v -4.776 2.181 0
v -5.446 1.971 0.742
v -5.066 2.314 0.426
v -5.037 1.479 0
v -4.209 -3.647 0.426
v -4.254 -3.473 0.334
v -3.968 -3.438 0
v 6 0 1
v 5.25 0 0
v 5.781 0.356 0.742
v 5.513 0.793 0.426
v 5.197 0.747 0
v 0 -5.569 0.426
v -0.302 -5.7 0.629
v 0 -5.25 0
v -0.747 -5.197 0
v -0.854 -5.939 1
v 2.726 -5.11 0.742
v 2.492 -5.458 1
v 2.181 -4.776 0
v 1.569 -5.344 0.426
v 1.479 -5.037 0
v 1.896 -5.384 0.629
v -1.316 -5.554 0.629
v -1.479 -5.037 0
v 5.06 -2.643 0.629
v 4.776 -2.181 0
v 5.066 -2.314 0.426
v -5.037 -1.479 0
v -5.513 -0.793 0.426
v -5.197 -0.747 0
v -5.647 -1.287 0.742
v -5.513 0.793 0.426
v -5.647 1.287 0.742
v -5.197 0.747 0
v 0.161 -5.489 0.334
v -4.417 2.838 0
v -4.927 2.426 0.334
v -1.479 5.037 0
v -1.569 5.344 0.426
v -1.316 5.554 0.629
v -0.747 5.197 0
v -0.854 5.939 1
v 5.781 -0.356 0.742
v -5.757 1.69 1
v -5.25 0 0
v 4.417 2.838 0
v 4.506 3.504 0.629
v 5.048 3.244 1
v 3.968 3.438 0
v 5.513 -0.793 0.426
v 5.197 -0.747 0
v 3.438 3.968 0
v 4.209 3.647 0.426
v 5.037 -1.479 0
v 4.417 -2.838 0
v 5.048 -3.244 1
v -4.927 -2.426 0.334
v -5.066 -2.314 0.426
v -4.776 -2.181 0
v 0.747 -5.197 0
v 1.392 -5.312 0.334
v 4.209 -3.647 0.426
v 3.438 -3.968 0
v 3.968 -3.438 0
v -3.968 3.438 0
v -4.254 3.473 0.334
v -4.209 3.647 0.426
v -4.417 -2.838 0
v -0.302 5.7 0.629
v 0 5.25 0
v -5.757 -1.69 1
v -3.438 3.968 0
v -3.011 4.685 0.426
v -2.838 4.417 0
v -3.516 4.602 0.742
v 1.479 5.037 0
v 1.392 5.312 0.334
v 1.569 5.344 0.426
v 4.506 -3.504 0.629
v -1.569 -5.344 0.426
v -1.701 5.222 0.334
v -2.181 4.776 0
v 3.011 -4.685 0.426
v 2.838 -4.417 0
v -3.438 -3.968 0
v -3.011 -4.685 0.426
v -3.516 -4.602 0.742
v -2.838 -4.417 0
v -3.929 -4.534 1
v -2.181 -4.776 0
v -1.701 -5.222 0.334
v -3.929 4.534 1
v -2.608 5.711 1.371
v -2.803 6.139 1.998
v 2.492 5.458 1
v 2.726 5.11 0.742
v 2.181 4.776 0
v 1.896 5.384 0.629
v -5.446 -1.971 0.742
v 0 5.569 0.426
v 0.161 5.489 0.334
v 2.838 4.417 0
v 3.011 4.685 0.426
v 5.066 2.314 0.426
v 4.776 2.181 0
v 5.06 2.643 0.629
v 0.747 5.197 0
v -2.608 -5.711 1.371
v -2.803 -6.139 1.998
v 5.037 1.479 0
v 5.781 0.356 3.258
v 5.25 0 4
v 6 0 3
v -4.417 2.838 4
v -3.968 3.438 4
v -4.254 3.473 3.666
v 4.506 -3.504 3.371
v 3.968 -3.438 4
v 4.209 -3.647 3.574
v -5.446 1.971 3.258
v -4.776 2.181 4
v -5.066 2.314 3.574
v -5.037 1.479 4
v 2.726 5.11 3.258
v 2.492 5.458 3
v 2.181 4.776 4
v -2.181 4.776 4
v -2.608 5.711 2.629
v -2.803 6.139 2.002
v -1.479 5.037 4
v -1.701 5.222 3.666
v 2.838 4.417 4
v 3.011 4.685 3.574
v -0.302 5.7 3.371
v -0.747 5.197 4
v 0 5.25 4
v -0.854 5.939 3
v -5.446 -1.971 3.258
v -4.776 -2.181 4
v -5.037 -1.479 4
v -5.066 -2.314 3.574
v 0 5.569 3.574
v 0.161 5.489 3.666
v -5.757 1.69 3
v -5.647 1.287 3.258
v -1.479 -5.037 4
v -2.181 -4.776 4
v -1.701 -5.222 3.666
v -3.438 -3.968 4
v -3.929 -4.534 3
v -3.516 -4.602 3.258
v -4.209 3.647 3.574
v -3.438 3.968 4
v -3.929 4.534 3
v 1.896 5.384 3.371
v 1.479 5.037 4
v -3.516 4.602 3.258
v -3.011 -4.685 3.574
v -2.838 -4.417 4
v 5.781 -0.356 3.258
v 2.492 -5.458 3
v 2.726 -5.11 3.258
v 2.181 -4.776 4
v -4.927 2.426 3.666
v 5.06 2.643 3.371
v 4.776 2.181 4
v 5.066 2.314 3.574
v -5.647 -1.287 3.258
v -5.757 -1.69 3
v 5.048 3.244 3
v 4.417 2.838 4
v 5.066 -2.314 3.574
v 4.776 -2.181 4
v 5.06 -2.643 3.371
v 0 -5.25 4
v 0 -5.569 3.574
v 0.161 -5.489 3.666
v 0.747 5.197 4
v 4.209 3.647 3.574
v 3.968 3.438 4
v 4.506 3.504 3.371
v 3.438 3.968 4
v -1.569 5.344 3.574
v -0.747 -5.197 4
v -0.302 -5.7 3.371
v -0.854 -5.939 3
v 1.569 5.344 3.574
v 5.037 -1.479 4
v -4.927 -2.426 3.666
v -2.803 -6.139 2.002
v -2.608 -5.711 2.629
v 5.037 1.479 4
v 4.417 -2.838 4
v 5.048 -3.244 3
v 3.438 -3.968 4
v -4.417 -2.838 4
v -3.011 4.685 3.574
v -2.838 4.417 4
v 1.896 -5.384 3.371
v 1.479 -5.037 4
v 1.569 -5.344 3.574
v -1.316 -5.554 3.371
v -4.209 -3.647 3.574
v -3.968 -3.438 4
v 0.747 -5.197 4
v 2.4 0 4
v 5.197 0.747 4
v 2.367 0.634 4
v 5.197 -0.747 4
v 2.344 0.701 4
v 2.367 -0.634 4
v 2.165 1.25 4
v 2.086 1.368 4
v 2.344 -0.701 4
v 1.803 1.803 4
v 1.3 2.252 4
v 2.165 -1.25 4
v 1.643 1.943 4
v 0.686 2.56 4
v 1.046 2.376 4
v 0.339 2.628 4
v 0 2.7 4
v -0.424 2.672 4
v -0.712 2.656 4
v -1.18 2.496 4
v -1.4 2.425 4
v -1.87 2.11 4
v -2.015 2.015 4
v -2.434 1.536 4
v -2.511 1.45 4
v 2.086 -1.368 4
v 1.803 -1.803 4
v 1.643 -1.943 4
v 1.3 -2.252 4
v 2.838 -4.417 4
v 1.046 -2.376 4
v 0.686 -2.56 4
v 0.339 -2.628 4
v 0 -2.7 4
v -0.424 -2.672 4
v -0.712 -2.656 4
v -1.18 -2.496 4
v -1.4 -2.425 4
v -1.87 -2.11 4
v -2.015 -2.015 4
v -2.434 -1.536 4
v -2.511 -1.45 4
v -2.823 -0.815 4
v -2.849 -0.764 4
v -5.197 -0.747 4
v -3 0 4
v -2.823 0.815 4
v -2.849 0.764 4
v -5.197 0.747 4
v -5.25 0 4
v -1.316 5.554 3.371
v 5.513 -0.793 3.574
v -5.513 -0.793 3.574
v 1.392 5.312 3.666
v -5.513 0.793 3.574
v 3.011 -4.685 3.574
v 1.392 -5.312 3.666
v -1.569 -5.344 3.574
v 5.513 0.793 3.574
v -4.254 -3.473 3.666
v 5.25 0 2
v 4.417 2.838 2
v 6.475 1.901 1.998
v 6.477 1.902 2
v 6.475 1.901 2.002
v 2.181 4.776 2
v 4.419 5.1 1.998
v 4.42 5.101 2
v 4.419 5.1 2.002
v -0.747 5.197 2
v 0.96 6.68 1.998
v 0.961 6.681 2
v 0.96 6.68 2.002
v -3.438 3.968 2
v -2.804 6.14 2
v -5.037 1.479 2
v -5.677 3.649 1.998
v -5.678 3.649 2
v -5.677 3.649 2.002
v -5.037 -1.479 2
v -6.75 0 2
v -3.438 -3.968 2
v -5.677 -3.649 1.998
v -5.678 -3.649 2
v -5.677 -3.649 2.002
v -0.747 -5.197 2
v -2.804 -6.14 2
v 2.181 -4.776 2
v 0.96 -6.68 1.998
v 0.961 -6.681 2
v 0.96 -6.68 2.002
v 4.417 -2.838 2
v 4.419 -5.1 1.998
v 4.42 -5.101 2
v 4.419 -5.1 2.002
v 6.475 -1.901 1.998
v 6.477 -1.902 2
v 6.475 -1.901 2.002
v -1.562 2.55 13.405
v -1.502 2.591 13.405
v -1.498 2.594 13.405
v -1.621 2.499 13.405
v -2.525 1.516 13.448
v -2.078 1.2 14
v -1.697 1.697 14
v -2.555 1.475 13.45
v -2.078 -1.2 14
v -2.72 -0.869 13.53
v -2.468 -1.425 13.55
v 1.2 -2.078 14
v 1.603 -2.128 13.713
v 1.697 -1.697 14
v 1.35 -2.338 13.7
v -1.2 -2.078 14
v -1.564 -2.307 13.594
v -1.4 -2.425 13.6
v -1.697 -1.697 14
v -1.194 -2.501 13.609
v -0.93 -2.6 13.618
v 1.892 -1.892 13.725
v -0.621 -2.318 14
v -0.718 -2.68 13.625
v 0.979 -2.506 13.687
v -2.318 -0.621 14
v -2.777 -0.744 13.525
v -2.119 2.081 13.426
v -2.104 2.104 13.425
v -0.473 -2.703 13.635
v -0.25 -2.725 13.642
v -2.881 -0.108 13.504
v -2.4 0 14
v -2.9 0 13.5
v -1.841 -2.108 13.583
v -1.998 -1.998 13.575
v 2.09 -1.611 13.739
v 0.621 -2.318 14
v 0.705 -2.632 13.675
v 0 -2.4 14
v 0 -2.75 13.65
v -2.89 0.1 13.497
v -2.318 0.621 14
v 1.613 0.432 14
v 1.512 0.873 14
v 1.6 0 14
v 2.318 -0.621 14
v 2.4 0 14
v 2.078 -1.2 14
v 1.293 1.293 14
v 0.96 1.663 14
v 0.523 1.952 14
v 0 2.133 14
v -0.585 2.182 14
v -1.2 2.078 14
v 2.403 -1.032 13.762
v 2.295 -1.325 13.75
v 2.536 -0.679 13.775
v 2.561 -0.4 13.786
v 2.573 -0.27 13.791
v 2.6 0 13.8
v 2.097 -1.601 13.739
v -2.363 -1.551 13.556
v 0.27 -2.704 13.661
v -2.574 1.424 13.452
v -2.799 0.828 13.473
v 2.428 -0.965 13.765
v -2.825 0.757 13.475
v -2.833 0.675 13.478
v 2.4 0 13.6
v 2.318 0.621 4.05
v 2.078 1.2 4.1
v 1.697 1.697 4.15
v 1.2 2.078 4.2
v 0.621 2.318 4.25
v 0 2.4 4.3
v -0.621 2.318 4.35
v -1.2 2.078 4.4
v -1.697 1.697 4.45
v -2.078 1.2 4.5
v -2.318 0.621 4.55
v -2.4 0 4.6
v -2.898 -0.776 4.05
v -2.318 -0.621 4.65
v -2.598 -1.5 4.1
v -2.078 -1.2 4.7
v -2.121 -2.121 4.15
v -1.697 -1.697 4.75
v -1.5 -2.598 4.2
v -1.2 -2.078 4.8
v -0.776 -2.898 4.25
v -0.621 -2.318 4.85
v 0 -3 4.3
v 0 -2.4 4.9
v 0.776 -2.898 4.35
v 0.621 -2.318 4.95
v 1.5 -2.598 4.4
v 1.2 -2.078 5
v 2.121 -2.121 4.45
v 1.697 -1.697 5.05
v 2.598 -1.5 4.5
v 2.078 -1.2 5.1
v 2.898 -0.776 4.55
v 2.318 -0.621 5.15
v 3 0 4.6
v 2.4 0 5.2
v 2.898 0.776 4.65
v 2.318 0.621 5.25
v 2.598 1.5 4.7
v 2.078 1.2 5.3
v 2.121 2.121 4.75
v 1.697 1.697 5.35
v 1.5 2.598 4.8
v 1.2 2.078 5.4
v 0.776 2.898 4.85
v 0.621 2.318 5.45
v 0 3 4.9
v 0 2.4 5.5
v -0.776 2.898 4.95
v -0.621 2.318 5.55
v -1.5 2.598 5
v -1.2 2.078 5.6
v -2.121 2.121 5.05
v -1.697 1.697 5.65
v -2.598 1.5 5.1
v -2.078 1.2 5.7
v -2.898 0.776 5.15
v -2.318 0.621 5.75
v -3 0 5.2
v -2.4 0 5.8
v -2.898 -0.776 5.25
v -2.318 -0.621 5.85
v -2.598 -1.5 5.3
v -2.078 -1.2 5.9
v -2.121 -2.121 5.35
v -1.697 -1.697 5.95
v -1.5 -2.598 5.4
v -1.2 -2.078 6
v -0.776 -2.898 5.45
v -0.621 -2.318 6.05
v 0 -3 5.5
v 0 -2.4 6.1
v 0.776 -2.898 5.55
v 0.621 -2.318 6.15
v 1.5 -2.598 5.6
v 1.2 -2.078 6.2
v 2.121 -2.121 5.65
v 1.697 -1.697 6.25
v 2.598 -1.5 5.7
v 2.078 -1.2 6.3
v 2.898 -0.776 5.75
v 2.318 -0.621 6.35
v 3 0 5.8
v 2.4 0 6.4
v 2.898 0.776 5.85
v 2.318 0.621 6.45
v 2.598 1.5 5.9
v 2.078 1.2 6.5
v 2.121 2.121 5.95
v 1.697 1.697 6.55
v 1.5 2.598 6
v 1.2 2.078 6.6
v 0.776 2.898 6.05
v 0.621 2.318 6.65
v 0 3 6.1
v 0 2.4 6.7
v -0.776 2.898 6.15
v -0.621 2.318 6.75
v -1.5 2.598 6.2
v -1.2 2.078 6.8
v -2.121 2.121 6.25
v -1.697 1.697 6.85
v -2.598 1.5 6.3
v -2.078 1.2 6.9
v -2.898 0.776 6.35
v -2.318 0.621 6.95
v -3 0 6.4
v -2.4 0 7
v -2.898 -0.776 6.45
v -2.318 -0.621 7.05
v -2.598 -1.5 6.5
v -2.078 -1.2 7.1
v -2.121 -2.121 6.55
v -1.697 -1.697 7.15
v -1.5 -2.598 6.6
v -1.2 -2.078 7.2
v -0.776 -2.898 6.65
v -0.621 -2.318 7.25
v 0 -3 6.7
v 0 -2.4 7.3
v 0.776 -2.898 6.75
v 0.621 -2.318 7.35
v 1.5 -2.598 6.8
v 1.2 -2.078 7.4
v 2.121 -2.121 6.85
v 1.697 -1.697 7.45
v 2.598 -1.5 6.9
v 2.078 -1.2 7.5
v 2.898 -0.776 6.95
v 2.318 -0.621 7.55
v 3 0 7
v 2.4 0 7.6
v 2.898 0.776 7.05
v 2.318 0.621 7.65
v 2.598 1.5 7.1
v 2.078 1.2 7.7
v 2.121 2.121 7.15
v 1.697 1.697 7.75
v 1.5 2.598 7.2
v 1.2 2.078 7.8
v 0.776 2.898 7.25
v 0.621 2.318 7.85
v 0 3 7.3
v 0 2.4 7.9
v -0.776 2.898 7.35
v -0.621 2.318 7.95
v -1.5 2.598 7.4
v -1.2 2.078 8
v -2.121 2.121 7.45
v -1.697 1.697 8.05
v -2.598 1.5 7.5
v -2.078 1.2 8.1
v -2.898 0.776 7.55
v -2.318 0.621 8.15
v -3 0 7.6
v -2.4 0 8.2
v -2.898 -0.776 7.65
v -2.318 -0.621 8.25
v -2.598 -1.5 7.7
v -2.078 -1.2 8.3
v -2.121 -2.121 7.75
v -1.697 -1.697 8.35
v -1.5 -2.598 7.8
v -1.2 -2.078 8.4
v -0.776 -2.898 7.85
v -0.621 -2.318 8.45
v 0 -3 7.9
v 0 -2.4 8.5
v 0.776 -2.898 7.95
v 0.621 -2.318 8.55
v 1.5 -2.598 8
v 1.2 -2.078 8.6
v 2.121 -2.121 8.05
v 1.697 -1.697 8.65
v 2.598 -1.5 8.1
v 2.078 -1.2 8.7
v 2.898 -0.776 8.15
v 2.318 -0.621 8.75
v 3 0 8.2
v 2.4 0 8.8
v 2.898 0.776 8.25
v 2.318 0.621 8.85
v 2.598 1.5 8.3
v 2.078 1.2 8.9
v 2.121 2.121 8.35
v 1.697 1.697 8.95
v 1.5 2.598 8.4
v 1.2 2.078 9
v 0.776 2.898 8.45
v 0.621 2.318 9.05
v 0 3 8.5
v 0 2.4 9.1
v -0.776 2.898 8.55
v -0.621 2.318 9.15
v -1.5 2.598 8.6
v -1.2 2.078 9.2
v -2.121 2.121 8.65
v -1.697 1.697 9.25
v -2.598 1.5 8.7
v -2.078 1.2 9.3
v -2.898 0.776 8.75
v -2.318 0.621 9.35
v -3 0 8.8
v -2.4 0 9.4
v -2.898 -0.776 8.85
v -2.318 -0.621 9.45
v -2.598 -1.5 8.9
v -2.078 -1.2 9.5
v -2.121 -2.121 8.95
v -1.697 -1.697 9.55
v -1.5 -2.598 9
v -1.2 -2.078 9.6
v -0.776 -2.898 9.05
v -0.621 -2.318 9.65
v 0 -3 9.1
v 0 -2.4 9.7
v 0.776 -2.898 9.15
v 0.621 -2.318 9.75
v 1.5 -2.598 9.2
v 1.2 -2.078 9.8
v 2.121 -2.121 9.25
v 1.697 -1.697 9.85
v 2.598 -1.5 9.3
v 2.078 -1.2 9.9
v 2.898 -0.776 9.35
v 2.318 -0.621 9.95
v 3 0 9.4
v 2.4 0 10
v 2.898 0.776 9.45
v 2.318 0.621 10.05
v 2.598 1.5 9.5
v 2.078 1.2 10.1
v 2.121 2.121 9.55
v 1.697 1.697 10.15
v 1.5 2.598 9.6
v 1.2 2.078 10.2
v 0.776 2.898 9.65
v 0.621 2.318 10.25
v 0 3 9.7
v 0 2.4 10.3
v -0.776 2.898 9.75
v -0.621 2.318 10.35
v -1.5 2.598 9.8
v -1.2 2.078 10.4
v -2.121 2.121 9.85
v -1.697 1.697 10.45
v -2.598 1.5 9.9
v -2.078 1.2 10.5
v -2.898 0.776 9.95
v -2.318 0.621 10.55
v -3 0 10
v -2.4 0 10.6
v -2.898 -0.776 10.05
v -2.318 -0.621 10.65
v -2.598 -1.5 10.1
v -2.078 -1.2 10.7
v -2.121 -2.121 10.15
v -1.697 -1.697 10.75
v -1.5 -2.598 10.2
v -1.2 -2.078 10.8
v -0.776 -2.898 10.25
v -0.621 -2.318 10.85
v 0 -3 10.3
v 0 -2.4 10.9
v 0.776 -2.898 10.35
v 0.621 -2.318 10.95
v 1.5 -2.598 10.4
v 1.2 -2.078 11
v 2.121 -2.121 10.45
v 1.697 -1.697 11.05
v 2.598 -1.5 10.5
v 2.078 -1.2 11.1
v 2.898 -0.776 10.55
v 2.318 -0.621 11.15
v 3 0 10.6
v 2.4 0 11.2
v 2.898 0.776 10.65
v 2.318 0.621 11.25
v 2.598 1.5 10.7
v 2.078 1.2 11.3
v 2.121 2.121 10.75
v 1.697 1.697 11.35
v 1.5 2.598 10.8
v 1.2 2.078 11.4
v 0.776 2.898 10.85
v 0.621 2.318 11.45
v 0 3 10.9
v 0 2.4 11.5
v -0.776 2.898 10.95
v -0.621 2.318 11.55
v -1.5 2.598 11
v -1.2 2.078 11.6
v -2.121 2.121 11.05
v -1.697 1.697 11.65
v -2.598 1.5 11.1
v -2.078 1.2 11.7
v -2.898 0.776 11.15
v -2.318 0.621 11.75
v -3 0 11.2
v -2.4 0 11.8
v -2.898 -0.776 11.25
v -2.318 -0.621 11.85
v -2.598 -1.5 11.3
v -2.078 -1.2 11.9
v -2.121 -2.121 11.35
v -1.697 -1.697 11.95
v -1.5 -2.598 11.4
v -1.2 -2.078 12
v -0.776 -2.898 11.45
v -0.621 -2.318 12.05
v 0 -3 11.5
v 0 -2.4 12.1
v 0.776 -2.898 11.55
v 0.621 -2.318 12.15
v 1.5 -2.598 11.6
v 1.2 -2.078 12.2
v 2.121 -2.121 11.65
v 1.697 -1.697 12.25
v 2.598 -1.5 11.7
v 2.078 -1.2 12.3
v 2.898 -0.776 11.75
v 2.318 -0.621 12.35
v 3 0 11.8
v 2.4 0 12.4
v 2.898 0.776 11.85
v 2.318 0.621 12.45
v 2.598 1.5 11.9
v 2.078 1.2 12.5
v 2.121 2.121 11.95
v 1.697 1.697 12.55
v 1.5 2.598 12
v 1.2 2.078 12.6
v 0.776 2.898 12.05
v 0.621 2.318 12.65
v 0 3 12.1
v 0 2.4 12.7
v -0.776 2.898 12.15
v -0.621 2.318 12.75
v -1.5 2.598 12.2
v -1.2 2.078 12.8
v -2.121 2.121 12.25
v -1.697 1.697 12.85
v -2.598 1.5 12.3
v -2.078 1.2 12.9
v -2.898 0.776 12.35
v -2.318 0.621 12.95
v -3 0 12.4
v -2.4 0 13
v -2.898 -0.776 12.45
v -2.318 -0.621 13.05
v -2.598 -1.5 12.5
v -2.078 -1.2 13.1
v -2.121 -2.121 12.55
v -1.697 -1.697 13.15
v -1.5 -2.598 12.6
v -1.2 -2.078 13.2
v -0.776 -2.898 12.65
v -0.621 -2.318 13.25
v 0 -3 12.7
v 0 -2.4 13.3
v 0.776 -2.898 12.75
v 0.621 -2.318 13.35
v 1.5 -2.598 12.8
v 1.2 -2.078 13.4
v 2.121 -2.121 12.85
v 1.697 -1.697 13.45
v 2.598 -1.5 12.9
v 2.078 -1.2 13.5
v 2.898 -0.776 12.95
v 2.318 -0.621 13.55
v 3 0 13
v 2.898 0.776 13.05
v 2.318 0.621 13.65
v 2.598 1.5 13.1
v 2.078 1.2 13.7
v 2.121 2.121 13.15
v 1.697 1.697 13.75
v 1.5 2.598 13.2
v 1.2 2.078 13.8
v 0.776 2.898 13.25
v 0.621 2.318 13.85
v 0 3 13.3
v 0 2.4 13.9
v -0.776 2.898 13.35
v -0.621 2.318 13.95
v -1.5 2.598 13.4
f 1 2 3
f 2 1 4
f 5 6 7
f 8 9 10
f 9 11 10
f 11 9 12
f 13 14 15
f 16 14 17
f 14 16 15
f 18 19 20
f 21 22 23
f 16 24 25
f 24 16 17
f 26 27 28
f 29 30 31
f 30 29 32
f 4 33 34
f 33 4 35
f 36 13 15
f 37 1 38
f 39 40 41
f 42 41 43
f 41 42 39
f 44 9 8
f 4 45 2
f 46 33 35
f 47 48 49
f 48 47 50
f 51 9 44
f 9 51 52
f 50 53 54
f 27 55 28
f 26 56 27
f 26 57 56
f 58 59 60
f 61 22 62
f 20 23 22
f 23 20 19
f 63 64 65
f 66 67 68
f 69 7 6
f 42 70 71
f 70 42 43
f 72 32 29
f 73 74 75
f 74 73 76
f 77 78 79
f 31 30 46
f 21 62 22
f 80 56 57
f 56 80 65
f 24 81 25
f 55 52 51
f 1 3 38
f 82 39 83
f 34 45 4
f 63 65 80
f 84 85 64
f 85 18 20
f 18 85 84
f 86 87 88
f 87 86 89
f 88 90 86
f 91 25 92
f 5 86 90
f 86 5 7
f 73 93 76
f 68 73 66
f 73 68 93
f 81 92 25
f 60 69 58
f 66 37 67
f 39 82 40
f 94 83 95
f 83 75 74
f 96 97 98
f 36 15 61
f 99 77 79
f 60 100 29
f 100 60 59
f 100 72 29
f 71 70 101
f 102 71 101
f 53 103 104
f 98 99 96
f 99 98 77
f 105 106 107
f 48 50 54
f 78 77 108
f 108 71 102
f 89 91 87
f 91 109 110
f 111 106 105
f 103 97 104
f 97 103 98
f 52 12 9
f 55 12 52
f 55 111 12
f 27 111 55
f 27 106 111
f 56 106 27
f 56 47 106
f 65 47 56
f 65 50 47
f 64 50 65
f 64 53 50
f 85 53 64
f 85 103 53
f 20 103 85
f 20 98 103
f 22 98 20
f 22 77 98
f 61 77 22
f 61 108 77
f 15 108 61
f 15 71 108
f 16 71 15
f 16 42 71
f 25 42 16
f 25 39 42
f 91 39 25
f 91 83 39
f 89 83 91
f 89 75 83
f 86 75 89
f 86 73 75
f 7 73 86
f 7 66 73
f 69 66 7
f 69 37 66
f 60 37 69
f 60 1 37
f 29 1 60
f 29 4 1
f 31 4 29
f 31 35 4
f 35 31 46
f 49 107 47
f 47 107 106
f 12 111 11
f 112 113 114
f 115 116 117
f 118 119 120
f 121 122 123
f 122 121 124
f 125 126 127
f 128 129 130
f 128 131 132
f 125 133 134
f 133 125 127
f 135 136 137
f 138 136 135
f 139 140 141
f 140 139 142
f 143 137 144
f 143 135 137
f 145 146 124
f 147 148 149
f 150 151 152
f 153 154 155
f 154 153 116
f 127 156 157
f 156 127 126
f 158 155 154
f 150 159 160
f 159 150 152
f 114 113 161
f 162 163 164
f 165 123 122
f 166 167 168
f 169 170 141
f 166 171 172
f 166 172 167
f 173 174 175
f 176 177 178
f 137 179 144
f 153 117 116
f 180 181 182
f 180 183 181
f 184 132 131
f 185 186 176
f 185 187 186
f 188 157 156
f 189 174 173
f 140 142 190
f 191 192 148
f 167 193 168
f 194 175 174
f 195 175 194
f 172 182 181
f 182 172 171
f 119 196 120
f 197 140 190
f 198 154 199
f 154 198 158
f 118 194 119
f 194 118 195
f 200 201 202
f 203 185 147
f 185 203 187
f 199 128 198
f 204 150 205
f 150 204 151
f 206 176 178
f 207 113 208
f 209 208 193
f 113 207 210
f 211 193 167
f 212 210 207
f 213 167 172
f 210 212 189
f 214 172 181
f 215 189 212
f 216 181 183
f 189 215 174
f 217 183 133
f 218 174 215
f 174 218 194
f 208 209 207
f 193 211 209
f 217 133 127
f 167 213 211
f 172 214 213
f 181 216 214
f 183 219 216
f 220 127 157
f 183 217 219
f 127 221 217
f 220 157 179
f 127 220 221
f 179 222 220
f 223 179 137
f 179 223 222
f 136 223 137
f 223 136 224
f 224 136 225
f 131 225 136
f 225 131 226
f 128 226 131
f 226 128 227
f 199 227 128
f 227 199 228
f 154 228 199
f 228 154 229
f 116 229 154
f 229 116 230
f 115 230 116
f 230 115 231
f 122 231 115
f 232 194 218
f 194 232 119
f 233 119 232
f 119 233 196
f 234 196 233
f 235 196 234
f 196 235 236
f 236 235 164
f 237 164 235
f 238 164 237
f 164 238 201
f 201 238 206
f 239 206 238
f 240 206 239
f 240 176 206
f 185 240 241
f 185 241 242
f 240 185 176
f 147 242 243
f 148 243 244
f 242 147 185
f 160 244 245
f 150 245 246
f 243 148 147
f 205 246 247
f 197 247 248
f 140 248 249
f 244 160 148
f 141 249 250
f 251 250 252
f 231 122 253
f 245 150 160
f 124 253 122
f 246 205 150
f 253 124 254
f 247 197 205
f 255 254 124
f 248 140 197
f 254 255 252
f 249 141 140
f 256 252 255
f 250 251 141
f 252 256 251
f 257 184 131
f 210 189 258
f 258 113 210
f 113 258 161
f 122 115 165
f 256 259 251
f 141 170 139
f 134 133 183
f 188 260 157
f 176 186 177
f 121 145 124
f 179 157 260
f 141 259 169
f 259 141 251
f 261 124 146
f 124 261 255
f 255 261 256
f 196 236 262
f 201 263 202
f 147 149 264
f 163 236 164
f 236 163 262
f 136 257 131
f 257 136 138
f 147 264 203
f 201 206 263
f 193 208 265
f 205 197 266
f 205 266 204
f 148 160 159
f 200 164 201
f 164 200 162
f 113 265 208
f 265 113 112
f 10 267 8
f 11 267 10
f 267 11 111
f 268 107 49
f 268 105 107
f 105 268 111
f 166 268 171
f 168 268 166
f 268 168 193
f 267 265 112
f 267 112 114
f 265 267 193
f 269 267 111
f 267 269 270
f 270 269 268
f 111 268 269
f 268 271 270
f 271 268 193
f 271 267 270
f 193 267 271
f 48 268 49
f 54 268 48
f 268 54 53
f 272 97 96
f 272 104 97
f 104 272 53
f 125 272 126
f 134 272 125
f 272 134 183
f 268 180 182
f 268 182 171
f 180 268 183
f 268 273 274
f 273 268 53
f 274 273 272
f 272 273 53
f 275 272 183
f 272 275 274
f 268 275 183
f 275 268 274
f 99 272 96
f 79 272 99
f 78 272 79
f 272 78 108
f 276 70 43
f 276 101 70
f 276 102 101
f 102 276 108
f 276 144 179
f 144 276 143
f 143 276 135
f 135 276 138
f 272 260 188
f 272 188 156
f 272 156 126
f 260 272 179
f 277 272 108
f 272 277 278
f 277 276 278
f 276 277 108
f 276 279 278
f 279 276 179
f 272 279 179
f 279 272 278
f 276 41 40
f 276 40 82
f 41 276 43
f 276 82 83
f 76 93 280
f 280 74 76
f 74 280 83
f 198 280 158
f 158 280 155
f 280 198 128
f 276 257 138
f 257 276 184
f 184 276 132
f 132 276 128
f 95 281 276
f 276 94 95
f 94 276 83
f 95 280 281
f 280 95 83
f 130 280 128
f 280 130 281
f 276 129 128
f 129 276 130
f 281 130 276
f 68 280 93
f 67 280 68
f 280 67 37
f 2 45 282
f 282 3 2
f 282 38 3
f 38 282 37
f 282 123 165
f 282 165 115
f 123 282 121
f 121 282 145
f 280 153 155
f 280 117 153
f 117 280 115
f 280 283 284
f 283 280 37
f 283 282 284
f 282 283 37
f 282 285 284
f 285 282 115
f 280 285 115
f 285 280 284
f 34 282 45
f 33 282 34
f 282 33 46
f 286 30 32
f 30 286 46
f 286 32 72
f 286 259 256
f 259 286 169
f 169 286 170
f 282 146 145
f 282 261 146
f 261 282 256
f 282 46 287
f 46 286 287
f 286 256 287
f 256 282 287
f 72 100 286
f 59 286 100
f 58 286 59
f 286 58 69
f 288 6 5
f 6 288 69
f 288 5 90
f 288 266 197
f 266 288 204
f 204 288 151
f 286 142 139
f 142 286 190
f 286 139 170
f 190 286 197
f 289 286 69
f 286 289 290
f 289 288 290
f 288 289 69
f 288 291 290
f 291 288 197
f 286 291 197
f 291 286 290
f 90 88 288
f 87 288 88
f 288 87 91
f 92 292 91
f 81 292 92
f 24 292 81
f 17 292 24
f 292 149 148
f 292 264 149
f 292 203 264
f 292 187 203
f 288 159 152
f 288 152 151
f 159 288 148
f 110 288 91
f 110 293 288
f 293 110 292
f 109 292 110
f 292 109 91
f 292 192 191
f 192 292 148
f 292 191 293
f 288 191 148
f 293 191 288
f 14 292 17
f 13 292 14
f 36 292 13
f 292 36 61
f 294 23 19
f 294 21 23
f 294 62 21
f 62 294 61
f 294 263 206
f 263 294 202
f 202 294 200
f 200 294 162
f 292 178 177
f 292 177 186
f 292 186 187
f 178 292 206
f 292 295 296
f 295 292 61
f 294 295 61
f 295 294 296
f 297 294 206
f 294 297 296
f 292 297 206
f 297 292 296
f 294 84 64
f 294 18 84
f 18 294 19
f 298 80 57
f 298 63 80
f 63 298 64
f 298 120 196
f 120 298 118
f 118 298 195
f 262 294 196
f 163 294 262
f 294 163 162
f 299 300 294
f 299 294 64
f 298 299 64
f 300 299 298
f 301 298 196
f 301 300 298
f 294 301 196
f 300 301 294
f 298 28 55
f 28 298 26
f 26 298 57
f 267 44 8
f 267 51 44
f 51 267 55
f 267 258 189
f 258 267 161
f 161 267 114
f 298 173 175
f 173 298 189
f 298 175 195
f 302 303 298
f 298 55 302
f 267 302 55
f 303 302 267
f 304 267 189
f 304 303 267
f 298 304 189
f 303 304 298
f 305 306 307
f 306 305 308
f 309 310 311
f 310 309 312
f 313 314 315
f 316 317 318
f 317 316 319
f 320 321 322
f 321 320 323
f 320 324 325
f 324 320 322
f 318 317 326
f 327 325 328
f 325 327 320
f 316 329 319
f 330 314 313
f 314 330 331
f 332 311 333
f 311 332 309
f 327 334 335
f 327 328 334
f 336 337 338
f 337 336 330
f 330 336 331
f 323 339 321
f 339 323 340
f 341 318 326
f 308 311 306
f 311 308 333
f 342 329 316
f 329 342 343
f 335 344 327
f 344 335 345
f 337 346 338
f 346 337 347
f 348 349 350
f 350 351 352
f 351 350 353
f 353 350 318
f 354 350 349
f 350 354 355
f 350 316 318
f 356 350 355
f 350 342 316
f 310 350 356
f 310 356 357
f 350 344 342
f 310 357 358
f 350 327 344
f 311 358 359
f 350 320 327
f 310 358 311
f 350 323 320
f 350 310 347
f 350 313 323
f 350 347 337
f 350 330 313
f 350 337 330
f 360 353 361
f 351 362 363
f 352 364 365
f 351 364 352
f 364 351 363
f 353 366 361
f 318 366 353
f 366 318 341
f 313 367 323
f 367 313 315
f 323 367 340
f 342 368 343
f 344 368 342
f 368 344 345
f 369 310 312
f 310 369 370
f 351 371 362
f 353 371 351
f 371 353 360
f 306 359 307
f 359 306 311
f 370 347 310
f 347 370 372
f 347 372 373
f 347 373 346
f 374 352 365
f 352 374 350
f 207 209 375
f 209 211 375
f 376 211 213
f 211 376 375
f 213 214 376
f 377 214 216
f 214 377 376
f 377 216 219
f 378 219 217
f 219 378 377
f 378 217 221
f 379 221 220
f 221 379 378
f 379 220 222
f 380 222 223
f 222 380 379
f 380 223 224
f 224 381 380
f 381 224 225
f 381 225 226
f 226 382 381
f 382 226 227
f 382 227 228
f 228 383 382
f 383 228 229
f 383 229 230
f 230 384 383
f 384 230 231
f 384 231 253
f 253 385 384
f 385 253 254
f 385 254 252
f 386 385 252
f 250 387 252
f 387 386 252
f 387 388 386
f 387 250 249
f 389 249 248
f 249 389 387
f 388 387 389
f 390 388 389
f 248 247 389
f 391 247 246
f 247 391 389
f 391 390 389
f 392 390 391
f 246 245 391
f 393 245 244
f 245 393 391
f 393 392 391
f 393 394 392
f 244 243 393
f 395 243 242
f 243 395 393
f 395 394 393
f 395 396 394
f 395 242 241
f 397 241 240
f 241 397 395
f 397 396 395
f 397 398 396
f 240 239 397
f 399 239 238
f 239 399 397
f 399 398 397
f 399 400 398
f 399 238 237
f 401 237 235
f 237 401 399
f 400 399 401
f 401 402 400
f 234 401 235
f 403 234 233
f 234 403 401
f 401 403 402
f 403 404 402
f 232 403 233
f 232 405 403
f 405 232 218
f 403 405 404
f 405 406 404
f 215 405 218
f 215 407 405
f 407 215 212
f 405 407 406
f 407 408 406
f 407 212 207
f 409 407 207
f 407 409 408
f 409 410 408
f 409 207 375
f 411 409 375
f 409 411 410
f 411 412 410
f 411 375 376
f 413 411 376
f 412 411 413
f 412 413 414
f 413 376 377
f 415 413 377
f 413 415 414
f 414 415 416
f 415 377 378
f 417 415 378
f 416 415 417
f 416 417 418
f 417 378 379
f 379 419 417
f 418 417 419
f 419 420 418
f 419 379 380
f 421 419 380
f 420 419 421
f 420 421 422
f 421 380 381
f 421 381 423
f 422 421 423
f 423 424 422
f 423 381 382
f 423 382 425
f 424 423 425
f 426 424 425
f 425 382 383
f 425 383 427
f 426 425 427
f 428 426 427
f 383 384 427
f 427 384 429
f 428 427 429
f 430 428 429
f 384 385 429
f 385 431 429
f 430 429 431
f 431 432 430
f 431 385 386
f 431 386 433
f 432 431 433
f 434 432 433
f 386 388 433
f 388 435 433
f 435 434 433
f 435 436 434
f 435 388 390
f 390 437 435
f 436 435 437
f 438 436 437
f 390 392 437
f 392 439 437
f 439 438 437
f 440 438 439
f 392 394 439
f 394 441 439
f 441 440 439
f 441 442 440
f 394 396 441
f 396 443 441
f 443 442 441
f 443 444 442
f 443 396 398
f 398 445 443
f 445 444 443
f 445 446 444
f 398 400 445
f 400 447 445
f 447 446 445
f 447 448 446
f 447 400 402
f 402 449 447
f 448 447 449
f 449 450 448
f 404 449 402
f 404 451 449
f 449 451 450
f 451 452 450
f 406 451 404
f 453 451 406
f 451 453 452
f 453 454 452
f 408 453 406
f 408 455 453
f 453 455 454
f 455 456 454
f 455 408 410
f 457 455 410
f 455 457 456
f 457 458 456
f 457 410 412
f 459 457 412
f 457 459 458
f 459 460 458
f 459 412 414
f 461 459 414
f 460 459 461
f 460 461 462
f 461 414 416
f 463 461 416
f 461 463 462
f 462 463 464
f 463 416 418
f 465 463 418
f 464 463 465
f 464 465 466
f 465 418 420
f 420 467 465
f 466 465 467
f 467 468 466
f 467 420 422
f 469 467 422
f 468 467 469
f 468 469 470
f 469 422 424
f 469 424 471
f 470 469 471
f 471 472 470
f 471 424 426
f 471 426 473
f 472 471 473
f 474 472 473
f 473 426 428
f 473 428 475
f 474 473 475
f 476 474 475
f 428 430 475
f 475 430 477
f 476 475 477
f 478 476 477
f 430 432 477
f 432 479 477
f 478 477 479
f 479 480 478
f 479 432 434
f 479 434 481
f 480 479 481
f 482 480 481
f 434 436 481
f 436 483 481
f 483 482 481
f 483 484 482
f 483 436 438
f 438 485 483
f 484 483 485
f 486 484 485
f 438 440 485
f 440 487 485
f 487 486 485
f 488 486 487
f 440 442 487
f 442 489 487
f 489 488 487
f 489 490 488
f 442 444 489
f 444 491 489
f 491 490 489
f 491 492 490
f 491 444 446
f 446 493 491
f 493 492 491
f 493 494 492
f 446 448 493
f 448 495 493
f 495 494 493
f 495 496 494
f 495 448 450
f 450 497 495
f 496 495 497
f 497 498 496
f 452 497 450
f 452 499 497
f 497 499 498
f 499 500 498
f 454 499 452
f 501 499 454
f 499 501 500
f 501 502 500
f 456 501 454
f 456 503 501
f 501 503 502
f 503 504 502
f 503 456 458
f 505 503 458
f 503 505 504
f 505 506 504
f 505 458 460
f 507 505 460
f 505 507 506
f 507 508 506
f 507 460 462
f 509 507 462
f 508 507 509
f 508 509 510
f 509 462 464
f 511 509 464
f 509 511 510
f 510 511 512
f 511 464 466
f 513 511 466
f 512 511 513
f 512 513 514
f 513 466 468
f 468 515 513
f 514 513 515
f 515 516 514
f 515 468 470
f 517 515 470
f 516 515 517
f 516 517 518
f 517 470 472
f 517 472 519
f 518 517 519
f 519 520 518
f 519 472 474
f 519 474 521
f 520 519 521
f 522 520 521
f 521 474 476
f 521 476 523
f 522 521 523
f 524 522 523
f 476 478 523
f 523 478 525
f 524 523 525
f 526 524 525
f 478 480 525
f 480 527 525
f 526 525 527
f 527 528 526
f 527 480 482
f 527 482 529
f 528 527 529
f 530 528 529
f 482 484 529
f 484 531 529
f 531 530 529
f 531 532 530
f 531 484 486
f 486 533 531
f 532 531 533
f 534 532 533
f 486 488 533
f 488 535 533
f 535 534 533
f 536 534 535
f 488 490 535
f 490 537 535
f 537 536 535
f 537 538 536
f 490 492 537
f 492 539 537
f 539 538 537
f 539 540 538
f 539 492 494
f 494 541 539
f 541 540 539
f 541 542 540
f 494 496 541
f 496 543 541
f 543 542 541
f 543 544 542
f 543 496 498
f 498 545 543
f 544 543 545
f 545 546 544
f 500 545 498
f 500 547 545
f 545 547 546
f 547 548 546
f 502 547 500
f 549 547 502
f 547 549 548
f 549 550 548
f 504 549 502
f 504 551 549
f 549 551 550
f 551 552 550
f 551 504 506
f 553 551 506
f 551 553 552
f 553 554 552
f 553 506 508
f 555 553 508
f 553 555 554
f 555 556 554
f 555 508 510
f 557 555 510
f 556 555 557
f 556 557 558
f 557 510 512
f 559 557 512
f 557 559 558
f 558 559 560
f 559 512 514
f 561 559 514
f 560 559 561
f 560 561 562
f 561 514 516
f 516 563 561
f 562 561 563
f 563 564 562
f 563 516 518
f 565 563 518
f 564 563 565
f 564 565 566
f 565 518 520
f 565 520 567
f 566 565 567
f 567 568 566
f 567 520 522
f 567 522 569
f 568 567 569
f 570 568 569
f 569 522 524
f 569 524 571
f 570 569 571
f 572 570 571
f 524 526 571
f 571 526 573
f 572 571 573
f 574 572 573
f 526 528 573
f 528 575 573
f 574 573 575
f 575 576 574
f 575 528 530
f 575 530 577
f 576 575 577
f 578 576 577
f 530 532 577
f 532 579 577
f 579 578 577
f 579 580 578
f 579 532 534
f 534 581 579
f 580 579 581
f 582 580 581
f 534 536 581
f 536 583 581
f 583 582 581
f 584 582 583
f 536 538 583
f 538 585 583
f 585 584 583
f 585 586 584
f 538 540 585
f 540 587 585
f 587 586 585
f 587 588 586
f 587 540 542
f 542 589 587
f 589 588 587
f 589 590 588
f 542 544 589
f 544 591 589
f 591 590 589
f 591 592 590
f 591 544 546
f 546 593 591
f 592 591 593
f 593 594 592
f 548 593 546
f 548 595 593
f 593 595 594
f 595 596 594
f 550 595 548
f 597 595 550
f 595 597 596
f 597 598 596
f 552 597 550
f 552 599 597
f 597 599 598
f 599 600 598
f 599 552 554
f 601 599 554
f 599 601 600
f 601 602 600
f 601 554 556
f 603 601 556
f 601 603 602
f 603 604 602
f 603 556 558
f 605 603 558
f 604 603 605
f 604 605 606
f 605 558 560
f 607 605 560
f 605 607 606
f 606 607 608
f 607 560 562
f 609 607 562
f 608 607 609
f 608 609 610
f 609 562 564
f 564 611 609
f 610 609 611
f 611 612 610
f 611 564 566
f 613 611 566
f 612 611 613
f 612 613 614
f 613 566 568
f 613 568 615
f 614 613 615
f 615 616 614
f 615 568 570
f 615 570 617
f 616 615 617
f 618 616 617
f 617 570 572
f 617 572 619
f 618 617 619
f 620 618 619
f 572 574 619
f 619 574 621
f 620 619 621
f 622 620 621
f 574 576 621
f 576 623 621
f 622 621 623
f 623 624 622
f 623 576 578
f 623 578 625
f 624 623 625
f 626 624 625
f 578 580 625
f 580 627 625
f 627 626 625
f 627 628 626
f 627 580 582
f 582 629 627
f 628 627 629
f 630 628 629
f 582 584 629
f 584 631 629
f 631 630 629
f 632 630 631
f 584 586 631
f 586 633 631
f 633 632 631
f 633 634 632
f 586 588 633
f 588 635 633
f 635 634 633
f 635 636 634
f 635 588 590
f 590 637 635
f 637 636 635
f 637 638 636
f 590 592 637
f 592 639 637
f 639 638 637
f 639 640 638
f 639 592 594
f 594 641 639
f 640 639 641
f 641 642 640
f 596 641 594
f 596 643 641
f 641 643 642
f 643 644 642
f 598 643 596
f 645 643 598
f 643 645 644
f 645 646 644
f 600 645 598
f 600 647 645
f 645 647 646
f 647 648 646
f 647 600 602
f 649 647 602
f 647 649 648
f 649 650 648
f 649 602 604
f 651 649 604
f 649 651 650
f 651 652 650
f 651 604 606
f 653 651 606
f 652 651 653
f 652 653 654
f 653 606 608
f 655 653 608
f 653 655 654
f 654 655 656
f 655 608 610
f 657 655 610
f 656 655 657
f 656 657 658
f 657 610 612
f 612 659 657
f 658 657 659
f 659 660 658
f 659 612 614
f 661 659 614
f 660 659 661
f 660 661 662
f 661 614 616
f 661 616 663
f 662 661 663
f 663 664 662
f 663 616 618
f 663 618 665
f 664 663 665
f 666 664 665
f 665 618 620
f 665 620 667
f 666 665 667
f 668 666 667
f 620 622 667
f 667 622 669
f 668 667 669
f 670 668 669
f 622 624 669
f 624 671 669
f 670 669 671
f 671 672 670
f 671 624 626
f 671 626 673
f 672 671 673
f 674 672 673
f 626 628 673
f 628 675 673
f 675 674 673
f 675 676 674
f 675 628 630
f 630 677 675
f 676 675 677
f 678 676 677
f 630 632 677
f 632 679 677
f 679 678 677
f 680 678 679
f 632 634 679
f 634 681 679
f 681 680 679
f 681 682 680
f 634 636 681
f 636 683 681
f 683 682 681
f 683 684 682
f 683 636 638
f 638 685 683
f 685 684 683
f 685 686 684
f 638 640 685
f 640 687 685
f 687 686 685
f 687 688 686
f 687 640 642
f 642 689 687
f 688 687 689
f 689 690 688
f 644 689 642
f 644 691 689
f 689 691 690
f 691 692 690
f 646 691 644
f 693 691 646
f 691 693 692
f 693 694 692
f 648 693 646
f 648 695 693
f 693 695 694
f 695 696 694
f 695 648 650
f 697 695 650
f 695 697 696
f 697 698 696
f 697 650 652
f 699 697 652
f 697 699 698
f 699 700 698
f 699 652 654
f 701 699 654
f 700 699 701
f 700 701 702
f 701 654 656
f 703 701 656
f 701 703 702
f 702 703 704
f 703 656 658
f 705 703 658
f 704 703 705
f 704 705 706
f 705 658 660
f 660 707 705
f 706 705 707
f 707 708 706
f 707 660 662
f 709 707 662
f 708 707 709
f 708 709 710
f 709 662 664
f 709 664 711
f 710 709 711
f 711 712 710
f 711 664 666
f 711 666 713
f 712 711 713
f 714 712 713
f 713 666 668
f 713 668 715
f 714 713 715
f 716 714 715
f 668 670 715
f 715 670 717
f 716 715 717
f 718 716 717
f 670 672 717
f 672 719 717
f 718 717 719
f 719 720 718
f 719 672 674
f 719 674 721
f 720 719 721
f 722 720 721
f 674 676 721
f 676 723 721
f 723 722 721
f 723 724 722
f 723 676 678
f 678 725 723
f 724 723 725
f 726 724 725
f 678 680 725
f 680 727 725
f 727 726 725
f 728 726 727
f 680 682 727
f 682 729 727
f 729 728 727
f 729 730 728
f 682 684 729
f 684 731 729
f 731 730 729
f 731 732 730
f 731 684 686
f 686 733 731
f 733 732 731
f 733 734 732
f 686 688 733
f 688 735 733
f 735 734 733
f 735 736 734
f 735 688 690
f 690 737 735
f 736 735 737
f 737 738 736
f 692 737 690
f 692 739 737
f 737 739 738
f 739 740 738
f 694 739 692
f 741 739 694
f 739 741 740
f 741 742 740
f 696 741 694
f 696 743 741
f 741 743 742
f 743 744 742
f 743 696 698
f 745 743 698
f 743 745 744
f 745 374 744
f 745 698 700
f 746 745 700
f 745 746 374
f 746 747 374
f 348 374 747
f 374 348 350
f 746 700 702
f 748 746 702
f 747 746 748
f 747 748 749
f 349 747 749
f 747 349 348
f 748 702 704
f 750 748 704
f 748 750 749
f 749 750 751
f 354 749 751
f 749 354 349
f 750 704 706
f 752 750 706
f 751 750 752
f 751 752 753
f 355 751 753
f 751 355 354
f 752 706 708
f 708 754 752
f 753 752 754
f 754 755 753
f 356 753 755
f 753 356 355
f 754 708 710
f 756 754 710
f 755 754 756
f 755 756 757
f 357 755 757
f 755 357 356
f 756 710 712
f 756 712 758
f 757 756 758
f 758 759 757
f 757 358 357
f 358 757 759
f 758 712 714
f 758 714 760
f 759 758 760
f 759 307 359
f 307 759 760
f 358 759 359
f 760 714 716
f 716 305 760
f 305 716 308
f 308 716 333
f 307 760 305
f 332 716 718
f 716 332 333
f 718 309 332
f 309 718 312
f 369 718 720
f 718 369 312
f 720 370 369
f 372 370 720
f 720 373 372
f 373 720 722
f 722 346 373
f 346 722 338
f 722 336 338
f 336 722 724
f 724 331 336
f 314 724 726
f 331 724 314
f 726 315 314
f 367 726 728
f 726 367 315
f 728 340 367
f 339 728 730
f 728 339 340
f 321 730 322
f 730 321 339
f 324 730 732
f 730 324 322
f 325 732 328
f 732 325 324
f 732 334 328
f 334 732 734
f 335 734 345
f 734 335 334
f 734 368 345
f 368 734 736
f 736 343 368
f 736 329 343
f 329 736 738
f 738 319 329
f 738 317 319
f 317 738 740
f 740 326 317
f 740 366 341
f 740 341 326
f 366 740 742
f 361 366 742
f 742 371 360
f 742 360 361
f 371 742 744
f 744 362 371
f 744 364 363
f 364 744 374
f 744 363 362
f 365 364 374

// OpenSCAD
/* [General] */
// Height of the thread
height = 10;
// Diameter of the knob
diameterKnob = 12;
// Height of the knob
heightKnob = 4;

/* [Knurl Settings] */
knurlWidth = 3;
knurlHeight = 4;
knurlDepth = 1.5;
knurlEndSmooth = 2;
knurlSurfaceSmooth = 0;

/* [Thread Settings] */
diameterThread = 6;
step = 1.2;
roundness = 4;
degrees = 45;

/* [Hidden] */
PI=3.141592;

knurled_cyl(heightKnob, diameterKnob,
            knurlWidth, knurlHeight, knurlDepth,
            knurlEndSmooth, knurlSurfaceSmooth);
            
/*
 * Countersink style:
 *                         -2 - Not even flat ends
 *                         -1 - Bottom (countersink'd and top flat)
 *                          0 - None (top and bottom flat)
 *                          1 - Top (bottom flat)
 *                          2 - Both (countersink'd)
 */
translate([0, 0, heightKnob])
  screw_thread(diameterThread, step, degrees, height,
               PI / roundness, 1);

/*
 * knurledFinishLib.scad
 * 
 * Written by aubenc @ Thingiverse
 *
 * This script is licensed under the Public Domain license.
 *
 * http://www.thingiverse.com/thing:9095
 *
 * Usage:
 *
 *    knurled_cyl( Knurled cylinder height,
 *                 Knurled cylinder outer diameter,
 *                 Knurl polyhedron width,
 *                 Knurl polyhedron height,
 *                 Knurl polyhedron depth,
 *                 Cylinder ends smoothed height,
 *                 Knurled surface smoothing amount );
 */
module knurled_cyl(chg, cod, cwd, csh, cdp, fsh, smt)
{
    cord=(cod+cdp+cdp*smt/100)/2;
    cird=cord-cdp;
    cfn=round(2*cird*PI/cwd);
    clf=360/cfn;
    crn=ceil(chg/csh);

    intersection()
    {
        shape(fsh, cird, cord-cdp*smt/100, cfn*4, chg);

        translate([0,0,-(crn*csh-chg)/2])
          knurled_finish(cord, cird, clf, csh, cfn, crn);
    }
}

module shape(hsh, ird, ord, fn4, hg)
{
        union()
        {
            cylinder(h=hsh, r1=ird, r2=ord, $fn=fn4, center=false);

            translate([0,0,hsh-0.002])
              cylinder(h=hg-2*hsh+0.004, r=ord, $fn=fn4, center=false);

            translate([0,0,hg-hsh])
              cylinder(h=hsh, r1=ord, r2=ird, $fn=fn4, center=false);
        }

}

module knurled_finish(ord, ird, lf, sh, fn, rn)
{
    for(j=[0:rn-1])
    assign(h0=sh*j, h1=sh*(j+1/2), h2=sh*(j+1))
    {
        for(i=[0:fn-1])
        assign(lf0=lf*i, lf1=lf*(i+1/2), lf2=lf*(i+1))
        {
            polyhedron(
                points=[
                     [ 0,0,h0],
                     [ ord*cos(lf0), ord*sin(lf0), h0],
                     [ ird*cos(lf1), ird*sin(lf1), h0],
                     [ ord*cos(lf2), ord*sin(lf2), h0],

                     [ ird*cos(lf0), ird*sin(lf0), h1],
                     [ ord*cos(lf1), ord*sin(lf1), h1],
                     [ ird*cos(lf2), ird*sin(lf2), h1],

                     [ 0,0,h2],
                     [ ord*cos(lf0), ord*sin(lf0), h2],
                     [ ird*cos(lf1), ird*sin(lf1), h2],
                     [ ord*cos(lf2), ord*sin(lf2), h2]
                    ],
                triangles=[
                     [0,1,2],[2,3,0],
                     [1,0,4],[4,0,7],[7,8,4],
                     [8,7,9],[10,9,7],
                     [10,7,6],[6,7,0],[3,6,0],
                     [2,1,4],[3,2,6],[10,6,9],[8,9,4],
                     [4,5,2],[2,5,6],[6,5,9],[9,5,4]
                    ],
                convexity=5);
         }
    }
}

/*
 *    polyScrewThread_r1.scad    by aubenc @ Thingiverse
 *
 * This script contains the library modules that can be used to generate
 * threaded rods, screws and nuts.
 *
 * http://www.thingiverse.com/thing:8796
 *
 * CC Public Domain
 */

module screw_thread(od,st,lf0,lt,rs,cs)
{
    or=od/2;
    ir=or-st/2*cos(lf0)/sin(lf0);
    pf=2*PI*or;
    sn=floor(pf/rs);
    lfxy=360/sn;
    ttn=round(lt/st+1);
    zt=st/sn;

    intersection()
    {
        if (cs >= -1)
        {
           thread_shape(cs,lt,or,ir,sn,st);
        }

        full_thread(ttn,st,sn,zt,lfxy,or,ir);
    }
}

module hex_nut(df,hg,sth,clf,cod,crs)
{

    difference()
    {
        hex_head(hg,df);

        hex_countersink_ends(sth/2,cod,clf,crs,hg);

        screw_thread(cod,sth,clf,hg,crs,-2);
    }
}


module hex_screw(od,st,lf0,lt,rs,cs,df,hg,ntl,ntd)
{
    ntr=od/2-(st/2)*cos(lf0)/sin(lf0);

    union()
    {
        hex_head(hg,df);

        translate([0,0,hg])
        if ( ntl == 0 )
        {
            cylinder(h=0.01, r=ntr, center=true);
        }
        else
        {
            if ( ntd == -1 )
            {
                cylinder(h=ntl+0.01, r=ntr, $fn=floor(od*PI/rs), center=false);
            }
            else if ( ntd == 0 )
            {
                union()
                {
                    cylinder(h=ntl-st/2,
                             r=od/2, $fn=floor(od*PI/rs), center=false);

                    translate([0,0,ntl-st/2])
                    cylinder(h=st/2,
                             r1=od/2, r2=ntr, 
                             $fn=floor(od*PI/rs), center=false);
                }
            }
            else
            {
                cylinder(h=ntl, r=ntd/2, $fn=ntd*PI/rs, center=false);
            }
        }

        translate([0,0,ntl+hg]) screw_thread(od,st,lf0,lt,rs,cs);
    }
}

module hex_screw_0(od,st,lf0,lt,rs,cs,df,hg,ntl,ntd)
{
    ntr=od/2-(st/2)*cos(lf0)/sin(lf0);

    union()
    {
        hex_head_0(hg,df);

        translate([0,0,hg])
        if ( ntl == 0 )
        {
            cylinder(h=0.01, r=ntr, center=true);
        }
        else
        {
            if ( ntd == -1 )
            {
                cylinder(h=ntl+0.01, r=ntr, $fn=floor(od*PI/rs), center=false);
            }
            else if ( ntd == 0 )
            {
                union()
                {
                    cylinder(h=ntl-st/2,
                             r=od/2, $fn=floor(od*PI/rs), center=false);

                    translate([0,0,ntl-st/2])
                    cylinder(h=st/2,
                             r1=od/2, r2=ntr, 
                             $fn=floor(od*PI/rs), center=false);
                }
            }
            else
            {
                cylinder(h=ntl, r=ntd/2, $fn=ntd*PI/rs, center=false);
            }
        }

        translate([0,0,ntl+hg]) screw_thread(od,st,lf0,lt,rs,cs);
    }
}

module thread_shape(cs,lt,or,ir,sn,st)
{
    if ( cs == 0 )
    {
        cylinder(h=lt, r=or, $fn=sn, center=false);
    }
    else
    {
        union()
        {
            translate([0,0,st/2])
              cylinder(h=lt-st+0.005, r=or, $fn=sn, center=false);

            if ( cs == -1 || cs == 2 )
            {
                cylinder(h=st/2, r1=ir, r2=or, $fn=sn, center=false);
            }
            else
            {
                cylinder(h=st/2, r=or, $fn=sn, center=false);
            }

            translate([0,0,lt-st/2])
            if ( cs == 1 || cs == 2 )
            {
                  cylinder(h=st/2, r1=or, r2=ir, $fn=sn, center=false);
            }
            else
            {
                cylinder(h=st/2, r=or, $fn=sn, center=false);
            }
        }
    }
}

module full_thread(ttn,st,sn,zt,lfxy,or,ir)
{
  if(ir >= 0.2)
  {
    for(i=[0:ttn-1])
    {
        for(j=[0:sn-1])
			assign( pt = [	[0,                  0,                  i*st-st            ],
                        [ir*cos(j*lfxy),     ir*sin(j*lfxy),     i*st+j*zt-st       ],
                        [ir*cos((j+1)*lfxy), ir*sin((j+1)*lfxy), i*st+(j+1)*zt-st   ],
								[0,0,i*st],
                        [or*cos(j*lfxy),     or*sin(j*lfxy),     i*st+j*zt-st/2     ],
                        [or*cos((j+1)*lfxy), or*sin((j+1)*lfxy), i*st+(j+1)*zt-st/2 ],
                        [ir*cos(j*lfxy),     ir*sin(j*lfxy),     i*st+j*zt          ],
                        [ir*cos((j+1)*lfxy), ir*sin((j+1)*lfxy), i*st+(j+1)*zt      ],
                        [0,                  0,                  i*st+st            ]	])
        {
            polyhedron(points=pt,
              		  triangles=[	[1,0,3],[1,3,6],[6,3,8],[1,6,4],
											[0,1,2],[1,4,2],[2,4,5],[5,4,6],[5,6,7],[7,6,8],
											[7,8,3],[0,2,3],[3,2,7],[7,2,5]	]);
        }
    }
  }
  else
  {
    echo("Step Degrees too agresive, the thread will not be made!!");
    echo("Try to increase de value for the degrees and/or...");
    echo(" decrease the pitch value and/or...");
    echo(" increase the outer diameter value.");
  }
}

module hex_head(hg,df)
{
	rd0=df/2/sin(60);
	x0=0;	x1=df/2;	x2=x1+hg/2;
	y0=0;	y1=hg/2;	y2=hg;

	intersection()
	{
	   cylinder(h=hg, r=rd0, $fn=6, center=false);

		rotate_extrude(convexity=10, $fn=6*round(df*PI/6/0.5))
		polygon([ [x0,y0],[x1,y0],[x2,y1],[x1,y2],[x0,y2] ]);
	}
}

module hex_head_0(hg,df)
{
    cylinder(h=hg, r=df/2/sin(60), $fn=6, center=false);
}

module hex_countersink_ends(chg,cod,clf,crs,hg)
{
    translate([0,0,-0.1])
    cylinder(h=chg+0.01, 
             r1=cod/2, 
             r2=cod/2-(chg+0.1)*cos(clf)/sin(clf),
             $fn=floor(cod*PI/crs), center=false);

    translate([0,0,hg-chg+0.1])
    cylinder(h=chg+0.01, 
             r1=cod/2-(chg+0.1)*cos(clf)/sin(clf),
             r2=cod/2, 
             $fn=floor(cod*PI/crs), center=false);
}
